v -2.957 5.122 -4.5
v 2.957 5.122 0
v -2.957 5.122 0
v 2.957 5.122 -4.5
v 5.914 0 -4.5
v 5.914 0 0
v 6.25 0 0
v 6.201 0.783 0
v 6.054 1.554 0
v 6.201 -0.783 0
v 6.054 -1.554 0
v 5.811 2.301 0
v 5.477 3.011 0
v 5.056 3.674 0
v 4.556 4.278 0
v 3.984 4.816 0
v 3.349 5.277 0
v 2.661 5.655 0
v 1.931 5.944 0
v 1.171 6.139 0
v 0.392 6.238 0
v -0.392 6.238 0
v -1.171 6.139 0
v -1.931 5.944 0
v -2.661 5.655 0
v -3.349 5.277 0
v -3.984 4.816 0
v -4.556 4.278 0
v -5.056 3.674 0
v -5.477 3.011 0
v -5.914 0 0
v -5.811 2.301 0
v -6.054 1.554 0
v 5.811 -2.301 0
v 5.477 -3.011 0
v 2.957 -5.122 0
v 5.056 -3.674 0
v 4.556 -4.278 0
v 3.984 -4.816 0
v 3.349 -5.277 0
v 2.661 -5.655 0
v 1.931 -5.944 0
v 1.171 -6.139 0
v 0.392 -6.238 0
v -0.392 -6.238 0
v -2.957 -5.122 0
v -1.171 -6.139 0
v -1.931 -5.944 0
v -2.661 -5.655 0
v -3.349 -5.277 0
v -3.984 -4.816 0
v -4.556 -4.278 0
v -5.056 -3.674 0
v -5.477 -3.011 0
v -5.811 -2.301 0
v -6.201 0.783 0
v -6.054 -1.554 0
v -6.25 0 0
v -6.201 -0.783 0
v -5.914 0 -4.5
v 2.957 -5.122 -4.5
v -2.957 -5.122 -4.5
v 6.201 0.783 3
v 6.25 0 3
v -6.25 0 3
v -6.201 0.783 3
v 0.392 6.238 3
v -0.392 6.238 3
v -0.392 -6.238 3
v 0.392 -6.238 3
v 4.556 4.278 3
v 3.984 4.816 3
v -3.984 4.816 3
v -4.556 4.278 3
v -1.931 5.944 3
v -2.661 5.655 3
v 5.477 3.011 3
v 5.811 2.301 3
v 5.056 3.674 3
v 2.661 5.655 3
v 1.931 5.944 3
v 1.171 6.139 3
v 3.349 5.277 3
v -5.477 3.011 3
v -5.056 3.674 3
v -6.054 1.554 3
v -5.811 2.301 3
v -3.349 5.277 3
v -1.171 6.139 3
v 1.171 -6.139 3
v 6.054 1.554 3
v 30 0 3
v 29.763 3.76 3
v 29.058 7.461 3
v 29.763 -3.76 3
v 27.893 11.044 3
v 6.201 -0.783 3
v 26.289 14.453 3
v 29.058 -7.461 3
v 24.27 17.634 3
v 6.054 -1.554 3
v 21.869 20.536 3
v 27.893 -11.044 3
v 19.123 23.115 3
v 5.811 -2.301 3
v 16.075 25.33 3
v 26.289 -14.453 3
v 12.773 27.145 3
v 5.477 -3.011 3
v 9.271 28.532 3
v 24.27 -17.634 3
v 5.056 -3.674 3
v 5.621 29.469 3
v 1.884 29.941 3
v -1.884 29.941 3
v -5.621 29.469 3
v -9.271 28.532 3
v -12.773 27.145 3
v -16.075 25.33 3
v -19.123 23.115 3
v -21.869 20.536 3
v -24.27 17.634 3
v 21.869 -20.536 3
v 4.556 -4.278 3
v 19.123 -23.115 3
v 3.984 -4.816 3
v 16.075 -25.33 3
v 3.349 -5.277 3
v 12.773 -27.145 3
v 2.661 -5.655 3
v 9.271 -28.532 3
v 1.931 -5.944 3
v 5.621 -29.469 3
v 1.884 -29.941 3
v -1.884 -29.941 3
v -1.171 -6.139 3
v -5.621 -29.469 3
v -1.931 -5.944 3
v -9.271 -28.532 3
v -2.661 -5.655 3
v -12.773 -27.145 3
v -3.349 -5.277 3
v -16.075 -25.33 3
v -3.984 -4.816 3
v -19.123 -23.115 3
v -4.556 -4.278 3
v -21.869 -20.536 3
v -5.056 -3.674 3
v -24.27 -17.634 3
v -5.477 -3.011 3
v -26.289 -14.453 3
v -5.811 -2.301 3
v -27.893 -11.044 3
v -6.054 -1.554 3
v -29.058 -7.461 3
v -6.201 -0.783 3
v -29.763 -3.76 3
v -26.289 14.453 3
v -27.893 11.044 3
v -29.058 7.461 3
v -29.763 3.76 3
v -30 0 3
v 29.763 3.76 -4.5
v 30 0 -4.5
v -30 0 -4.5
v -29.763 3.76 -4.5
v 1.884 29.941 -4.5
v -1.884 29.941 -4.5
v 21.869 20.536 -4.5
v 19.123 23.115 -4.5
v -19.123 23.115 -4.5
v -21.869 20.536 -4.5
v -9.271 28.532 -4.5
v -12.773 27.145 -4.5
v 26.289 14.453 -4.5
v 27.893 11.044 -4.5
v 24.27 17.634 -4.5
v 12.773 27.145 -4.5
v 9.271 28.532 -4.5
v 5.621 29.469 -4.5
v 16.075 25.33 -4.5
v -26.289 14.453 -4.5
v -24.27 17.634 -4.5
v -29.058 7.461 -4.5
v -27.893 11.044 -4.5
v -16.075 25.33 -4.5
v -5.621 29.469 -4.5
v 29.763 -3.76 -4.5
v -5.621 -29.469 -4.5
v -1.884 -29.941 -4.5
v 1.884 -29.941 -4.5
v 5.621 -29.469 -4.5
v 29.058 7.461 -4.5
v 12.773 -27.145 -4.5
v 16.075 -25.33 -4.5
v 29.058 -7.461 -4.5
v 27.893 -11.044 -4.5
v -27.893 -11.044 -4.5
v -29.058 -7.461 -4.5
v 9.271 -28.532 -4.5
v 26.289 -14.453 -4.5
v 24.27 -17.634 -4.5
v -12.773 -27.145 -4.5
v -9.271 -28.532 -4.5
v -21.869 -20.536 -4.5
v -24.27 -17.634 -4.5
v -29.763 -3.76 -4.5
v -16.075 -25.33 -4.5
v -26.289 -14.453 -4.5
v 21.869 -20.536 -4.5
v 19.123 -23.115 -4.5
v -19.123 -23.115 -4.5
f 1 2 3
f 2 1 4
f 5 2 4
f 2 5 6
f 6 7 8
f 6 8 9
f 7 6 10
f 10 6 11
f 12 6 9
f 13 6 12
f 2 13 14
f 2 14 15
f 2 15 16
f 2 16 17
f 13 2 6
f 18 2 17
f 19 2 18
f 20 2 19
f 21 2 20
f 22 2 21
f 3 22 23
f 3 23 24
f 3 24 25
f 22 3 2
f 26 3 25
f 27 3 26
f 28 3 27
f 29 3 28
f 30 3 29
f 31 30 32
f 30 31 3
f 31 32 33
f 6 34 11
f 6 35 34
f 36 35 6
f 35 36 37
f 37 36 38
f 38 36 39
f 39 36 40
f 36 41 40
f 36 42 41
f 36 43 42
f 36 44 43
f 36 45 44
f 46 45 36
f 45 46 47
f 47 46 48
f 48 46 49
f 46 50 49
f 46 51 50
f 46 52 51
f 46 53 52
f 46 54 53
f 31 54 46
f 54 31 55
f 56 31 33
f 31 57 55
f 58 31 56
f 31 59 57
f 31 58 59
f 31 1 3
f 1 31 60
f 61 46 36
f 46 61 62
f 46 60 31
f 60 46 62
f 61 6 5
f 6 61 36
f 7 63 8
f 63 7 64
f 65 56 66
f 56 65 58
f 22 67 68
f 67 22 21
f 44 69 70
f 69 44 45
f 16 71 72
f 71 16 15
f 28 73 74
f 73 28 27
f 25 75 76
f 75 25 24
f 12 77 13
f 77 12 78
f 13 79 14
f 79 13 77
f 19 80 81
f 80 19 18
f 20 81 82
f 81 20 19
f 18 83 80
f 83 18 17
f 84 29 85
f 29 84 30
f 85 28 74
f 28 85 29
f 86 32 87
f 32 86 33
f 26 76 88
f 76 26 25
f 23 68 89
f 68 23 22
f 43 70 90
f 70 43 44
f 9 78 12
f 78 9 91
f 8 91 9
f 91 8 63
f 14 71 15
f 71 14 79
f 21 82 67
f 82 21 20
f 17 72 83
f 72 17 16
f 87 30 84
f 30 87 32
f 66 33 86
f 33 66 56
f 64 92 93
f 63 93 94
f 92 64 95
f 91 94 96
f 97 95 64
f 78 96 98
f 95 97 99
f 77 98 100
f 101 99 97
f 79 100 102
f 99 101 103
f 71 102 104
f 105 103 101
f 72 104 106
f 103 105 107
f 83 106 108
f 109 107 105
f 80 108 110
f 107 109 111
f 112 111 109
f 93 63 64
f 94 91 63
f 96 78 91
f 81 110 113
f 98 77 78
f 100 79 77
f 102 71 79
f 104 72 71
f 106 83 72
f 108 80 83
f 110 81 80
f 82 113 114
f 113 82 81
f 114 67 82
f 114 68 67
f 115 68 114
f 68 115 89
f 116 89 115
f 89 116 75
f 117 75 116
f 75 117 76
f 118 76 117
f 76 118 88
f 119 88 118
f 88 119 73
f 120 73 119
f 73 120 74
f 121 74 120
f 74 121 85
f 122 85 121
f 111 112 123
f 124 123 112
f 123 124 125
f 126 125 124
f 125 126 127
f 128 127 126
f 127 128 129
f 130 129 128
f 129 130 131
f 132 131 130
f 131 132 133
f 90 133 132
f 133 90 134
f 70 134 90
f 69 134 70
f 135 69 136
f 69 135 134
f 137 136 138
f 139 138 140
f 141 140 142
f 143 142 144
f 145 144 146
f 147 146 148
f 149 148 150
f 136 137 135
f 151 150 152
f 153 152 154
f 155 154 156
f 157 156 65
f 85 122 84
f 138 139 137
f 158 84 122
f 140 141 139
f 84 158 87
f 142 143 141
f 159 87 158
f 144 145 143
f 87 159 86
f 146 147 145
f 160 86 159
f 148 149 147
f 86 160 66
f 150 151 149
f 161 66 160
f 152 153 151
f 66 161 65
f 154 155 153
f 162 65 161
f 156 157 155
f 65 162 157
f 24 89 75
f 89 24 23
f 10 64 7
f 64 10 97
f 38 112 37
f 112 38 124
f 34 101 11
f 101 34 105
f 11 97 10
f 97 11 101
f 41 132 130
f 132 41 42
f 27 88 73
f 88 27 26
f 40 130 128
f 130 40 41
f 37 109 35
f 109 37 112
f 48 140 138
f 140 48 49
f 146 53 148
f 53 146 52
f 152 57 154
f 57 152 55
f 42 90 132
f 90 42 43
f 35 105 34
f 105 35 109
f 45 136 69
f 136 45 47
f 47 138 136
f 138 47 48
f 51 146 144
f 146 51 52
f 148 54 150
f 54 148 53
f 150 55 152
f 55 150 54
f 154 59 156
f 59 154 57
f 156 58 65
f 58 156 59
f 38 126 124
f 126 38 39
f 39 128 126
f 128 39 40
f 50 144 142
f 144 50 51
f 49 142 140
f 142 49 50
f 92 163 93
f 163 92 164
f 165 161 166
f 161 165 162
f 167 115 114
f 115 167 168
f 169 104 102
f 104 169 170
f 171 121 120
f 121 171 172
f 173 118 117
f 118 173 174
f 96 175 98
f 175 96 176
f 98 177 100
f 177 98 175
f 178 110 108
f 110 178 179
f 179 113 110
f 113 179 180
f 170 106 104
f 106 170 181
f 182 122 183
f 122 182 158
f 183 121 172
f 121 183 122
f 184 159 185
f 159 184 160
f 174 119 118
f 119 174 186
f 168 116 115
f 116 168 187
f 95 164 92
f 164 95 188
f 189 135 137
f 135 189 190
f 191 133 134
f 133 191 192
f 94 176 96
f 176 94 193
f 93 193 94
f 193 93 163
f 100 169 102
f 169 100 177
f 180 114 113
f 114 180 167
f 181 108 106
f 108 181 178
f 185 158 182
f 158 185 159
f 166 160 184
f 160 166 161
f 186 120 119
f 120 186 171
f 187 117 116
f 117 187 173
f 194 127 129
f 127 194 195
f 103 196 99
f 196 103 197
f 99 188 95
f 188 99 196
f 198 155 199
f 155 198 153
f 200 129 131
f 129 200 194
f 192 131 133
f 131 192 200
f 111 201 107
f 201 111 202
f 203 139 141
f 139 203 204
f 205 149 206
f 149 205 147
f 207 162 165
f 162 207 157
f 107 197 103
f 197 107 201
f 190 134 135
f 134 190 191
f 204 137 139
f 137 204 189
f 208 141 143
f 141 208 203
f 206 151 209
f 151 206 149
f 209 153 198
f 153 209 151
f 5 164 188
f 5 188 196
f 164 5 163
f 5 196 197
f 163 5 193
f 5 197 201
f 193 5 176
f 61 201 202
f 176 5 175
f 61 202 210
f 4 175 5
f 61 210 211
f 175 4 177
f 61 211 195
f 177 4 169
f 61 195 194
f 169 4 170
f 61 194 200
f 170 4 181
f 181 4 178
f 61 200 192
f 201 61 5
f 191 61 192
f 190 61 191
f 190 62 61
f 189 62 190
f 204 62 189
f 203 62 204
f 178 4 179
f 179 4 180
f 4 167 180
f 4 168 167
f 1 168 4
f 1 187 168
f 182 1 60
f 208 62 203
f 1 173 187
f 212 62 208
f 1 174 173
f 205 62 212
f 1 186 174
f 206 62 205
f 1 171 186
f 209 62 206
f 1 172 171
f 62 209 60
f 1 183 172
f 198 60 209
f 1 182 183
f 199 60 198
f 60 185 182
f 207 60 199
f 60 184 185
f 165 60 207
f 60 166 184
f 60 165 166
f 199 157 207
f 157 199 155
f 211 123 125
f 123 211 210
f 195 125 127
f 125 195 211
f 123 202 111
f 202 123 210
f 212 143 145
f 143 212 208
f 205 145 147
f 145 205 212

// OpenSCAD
$fn = 50;


difference() {
	union() {
		translate(v = [0, 0, -4.5000000000]) {
			cylinder(h = 7.5000000000, r = 30.0000000000);
		}
	}
	union() {
		translate(v = [0, 0, 0]) {
			rotate(a = [0, 0, 0]) {
				difference() {
					union() {
						translate(v = [0, 0, -5]) {
							linear_extrude(height = 5) {
								polygon(points = [[5.9142500000, 0.0000000000], [2.9571250000, 5.1218907443], [-2.9571250000, 5.1218907443], [-5.9142500000, 0.0000000000], [-2.9571250000, -5.1218907443], [2.9571250000, -5.1218907443]]);
							}
						}
					}
					union();
				}
			}
		}
		#cylinder(h = 3, r = 6.2500000000);
		#translate(v = [0, 0, -100.0000000000]) {
			cylinder(h = 200, r = 3.2500000000);
		}
	}
}
